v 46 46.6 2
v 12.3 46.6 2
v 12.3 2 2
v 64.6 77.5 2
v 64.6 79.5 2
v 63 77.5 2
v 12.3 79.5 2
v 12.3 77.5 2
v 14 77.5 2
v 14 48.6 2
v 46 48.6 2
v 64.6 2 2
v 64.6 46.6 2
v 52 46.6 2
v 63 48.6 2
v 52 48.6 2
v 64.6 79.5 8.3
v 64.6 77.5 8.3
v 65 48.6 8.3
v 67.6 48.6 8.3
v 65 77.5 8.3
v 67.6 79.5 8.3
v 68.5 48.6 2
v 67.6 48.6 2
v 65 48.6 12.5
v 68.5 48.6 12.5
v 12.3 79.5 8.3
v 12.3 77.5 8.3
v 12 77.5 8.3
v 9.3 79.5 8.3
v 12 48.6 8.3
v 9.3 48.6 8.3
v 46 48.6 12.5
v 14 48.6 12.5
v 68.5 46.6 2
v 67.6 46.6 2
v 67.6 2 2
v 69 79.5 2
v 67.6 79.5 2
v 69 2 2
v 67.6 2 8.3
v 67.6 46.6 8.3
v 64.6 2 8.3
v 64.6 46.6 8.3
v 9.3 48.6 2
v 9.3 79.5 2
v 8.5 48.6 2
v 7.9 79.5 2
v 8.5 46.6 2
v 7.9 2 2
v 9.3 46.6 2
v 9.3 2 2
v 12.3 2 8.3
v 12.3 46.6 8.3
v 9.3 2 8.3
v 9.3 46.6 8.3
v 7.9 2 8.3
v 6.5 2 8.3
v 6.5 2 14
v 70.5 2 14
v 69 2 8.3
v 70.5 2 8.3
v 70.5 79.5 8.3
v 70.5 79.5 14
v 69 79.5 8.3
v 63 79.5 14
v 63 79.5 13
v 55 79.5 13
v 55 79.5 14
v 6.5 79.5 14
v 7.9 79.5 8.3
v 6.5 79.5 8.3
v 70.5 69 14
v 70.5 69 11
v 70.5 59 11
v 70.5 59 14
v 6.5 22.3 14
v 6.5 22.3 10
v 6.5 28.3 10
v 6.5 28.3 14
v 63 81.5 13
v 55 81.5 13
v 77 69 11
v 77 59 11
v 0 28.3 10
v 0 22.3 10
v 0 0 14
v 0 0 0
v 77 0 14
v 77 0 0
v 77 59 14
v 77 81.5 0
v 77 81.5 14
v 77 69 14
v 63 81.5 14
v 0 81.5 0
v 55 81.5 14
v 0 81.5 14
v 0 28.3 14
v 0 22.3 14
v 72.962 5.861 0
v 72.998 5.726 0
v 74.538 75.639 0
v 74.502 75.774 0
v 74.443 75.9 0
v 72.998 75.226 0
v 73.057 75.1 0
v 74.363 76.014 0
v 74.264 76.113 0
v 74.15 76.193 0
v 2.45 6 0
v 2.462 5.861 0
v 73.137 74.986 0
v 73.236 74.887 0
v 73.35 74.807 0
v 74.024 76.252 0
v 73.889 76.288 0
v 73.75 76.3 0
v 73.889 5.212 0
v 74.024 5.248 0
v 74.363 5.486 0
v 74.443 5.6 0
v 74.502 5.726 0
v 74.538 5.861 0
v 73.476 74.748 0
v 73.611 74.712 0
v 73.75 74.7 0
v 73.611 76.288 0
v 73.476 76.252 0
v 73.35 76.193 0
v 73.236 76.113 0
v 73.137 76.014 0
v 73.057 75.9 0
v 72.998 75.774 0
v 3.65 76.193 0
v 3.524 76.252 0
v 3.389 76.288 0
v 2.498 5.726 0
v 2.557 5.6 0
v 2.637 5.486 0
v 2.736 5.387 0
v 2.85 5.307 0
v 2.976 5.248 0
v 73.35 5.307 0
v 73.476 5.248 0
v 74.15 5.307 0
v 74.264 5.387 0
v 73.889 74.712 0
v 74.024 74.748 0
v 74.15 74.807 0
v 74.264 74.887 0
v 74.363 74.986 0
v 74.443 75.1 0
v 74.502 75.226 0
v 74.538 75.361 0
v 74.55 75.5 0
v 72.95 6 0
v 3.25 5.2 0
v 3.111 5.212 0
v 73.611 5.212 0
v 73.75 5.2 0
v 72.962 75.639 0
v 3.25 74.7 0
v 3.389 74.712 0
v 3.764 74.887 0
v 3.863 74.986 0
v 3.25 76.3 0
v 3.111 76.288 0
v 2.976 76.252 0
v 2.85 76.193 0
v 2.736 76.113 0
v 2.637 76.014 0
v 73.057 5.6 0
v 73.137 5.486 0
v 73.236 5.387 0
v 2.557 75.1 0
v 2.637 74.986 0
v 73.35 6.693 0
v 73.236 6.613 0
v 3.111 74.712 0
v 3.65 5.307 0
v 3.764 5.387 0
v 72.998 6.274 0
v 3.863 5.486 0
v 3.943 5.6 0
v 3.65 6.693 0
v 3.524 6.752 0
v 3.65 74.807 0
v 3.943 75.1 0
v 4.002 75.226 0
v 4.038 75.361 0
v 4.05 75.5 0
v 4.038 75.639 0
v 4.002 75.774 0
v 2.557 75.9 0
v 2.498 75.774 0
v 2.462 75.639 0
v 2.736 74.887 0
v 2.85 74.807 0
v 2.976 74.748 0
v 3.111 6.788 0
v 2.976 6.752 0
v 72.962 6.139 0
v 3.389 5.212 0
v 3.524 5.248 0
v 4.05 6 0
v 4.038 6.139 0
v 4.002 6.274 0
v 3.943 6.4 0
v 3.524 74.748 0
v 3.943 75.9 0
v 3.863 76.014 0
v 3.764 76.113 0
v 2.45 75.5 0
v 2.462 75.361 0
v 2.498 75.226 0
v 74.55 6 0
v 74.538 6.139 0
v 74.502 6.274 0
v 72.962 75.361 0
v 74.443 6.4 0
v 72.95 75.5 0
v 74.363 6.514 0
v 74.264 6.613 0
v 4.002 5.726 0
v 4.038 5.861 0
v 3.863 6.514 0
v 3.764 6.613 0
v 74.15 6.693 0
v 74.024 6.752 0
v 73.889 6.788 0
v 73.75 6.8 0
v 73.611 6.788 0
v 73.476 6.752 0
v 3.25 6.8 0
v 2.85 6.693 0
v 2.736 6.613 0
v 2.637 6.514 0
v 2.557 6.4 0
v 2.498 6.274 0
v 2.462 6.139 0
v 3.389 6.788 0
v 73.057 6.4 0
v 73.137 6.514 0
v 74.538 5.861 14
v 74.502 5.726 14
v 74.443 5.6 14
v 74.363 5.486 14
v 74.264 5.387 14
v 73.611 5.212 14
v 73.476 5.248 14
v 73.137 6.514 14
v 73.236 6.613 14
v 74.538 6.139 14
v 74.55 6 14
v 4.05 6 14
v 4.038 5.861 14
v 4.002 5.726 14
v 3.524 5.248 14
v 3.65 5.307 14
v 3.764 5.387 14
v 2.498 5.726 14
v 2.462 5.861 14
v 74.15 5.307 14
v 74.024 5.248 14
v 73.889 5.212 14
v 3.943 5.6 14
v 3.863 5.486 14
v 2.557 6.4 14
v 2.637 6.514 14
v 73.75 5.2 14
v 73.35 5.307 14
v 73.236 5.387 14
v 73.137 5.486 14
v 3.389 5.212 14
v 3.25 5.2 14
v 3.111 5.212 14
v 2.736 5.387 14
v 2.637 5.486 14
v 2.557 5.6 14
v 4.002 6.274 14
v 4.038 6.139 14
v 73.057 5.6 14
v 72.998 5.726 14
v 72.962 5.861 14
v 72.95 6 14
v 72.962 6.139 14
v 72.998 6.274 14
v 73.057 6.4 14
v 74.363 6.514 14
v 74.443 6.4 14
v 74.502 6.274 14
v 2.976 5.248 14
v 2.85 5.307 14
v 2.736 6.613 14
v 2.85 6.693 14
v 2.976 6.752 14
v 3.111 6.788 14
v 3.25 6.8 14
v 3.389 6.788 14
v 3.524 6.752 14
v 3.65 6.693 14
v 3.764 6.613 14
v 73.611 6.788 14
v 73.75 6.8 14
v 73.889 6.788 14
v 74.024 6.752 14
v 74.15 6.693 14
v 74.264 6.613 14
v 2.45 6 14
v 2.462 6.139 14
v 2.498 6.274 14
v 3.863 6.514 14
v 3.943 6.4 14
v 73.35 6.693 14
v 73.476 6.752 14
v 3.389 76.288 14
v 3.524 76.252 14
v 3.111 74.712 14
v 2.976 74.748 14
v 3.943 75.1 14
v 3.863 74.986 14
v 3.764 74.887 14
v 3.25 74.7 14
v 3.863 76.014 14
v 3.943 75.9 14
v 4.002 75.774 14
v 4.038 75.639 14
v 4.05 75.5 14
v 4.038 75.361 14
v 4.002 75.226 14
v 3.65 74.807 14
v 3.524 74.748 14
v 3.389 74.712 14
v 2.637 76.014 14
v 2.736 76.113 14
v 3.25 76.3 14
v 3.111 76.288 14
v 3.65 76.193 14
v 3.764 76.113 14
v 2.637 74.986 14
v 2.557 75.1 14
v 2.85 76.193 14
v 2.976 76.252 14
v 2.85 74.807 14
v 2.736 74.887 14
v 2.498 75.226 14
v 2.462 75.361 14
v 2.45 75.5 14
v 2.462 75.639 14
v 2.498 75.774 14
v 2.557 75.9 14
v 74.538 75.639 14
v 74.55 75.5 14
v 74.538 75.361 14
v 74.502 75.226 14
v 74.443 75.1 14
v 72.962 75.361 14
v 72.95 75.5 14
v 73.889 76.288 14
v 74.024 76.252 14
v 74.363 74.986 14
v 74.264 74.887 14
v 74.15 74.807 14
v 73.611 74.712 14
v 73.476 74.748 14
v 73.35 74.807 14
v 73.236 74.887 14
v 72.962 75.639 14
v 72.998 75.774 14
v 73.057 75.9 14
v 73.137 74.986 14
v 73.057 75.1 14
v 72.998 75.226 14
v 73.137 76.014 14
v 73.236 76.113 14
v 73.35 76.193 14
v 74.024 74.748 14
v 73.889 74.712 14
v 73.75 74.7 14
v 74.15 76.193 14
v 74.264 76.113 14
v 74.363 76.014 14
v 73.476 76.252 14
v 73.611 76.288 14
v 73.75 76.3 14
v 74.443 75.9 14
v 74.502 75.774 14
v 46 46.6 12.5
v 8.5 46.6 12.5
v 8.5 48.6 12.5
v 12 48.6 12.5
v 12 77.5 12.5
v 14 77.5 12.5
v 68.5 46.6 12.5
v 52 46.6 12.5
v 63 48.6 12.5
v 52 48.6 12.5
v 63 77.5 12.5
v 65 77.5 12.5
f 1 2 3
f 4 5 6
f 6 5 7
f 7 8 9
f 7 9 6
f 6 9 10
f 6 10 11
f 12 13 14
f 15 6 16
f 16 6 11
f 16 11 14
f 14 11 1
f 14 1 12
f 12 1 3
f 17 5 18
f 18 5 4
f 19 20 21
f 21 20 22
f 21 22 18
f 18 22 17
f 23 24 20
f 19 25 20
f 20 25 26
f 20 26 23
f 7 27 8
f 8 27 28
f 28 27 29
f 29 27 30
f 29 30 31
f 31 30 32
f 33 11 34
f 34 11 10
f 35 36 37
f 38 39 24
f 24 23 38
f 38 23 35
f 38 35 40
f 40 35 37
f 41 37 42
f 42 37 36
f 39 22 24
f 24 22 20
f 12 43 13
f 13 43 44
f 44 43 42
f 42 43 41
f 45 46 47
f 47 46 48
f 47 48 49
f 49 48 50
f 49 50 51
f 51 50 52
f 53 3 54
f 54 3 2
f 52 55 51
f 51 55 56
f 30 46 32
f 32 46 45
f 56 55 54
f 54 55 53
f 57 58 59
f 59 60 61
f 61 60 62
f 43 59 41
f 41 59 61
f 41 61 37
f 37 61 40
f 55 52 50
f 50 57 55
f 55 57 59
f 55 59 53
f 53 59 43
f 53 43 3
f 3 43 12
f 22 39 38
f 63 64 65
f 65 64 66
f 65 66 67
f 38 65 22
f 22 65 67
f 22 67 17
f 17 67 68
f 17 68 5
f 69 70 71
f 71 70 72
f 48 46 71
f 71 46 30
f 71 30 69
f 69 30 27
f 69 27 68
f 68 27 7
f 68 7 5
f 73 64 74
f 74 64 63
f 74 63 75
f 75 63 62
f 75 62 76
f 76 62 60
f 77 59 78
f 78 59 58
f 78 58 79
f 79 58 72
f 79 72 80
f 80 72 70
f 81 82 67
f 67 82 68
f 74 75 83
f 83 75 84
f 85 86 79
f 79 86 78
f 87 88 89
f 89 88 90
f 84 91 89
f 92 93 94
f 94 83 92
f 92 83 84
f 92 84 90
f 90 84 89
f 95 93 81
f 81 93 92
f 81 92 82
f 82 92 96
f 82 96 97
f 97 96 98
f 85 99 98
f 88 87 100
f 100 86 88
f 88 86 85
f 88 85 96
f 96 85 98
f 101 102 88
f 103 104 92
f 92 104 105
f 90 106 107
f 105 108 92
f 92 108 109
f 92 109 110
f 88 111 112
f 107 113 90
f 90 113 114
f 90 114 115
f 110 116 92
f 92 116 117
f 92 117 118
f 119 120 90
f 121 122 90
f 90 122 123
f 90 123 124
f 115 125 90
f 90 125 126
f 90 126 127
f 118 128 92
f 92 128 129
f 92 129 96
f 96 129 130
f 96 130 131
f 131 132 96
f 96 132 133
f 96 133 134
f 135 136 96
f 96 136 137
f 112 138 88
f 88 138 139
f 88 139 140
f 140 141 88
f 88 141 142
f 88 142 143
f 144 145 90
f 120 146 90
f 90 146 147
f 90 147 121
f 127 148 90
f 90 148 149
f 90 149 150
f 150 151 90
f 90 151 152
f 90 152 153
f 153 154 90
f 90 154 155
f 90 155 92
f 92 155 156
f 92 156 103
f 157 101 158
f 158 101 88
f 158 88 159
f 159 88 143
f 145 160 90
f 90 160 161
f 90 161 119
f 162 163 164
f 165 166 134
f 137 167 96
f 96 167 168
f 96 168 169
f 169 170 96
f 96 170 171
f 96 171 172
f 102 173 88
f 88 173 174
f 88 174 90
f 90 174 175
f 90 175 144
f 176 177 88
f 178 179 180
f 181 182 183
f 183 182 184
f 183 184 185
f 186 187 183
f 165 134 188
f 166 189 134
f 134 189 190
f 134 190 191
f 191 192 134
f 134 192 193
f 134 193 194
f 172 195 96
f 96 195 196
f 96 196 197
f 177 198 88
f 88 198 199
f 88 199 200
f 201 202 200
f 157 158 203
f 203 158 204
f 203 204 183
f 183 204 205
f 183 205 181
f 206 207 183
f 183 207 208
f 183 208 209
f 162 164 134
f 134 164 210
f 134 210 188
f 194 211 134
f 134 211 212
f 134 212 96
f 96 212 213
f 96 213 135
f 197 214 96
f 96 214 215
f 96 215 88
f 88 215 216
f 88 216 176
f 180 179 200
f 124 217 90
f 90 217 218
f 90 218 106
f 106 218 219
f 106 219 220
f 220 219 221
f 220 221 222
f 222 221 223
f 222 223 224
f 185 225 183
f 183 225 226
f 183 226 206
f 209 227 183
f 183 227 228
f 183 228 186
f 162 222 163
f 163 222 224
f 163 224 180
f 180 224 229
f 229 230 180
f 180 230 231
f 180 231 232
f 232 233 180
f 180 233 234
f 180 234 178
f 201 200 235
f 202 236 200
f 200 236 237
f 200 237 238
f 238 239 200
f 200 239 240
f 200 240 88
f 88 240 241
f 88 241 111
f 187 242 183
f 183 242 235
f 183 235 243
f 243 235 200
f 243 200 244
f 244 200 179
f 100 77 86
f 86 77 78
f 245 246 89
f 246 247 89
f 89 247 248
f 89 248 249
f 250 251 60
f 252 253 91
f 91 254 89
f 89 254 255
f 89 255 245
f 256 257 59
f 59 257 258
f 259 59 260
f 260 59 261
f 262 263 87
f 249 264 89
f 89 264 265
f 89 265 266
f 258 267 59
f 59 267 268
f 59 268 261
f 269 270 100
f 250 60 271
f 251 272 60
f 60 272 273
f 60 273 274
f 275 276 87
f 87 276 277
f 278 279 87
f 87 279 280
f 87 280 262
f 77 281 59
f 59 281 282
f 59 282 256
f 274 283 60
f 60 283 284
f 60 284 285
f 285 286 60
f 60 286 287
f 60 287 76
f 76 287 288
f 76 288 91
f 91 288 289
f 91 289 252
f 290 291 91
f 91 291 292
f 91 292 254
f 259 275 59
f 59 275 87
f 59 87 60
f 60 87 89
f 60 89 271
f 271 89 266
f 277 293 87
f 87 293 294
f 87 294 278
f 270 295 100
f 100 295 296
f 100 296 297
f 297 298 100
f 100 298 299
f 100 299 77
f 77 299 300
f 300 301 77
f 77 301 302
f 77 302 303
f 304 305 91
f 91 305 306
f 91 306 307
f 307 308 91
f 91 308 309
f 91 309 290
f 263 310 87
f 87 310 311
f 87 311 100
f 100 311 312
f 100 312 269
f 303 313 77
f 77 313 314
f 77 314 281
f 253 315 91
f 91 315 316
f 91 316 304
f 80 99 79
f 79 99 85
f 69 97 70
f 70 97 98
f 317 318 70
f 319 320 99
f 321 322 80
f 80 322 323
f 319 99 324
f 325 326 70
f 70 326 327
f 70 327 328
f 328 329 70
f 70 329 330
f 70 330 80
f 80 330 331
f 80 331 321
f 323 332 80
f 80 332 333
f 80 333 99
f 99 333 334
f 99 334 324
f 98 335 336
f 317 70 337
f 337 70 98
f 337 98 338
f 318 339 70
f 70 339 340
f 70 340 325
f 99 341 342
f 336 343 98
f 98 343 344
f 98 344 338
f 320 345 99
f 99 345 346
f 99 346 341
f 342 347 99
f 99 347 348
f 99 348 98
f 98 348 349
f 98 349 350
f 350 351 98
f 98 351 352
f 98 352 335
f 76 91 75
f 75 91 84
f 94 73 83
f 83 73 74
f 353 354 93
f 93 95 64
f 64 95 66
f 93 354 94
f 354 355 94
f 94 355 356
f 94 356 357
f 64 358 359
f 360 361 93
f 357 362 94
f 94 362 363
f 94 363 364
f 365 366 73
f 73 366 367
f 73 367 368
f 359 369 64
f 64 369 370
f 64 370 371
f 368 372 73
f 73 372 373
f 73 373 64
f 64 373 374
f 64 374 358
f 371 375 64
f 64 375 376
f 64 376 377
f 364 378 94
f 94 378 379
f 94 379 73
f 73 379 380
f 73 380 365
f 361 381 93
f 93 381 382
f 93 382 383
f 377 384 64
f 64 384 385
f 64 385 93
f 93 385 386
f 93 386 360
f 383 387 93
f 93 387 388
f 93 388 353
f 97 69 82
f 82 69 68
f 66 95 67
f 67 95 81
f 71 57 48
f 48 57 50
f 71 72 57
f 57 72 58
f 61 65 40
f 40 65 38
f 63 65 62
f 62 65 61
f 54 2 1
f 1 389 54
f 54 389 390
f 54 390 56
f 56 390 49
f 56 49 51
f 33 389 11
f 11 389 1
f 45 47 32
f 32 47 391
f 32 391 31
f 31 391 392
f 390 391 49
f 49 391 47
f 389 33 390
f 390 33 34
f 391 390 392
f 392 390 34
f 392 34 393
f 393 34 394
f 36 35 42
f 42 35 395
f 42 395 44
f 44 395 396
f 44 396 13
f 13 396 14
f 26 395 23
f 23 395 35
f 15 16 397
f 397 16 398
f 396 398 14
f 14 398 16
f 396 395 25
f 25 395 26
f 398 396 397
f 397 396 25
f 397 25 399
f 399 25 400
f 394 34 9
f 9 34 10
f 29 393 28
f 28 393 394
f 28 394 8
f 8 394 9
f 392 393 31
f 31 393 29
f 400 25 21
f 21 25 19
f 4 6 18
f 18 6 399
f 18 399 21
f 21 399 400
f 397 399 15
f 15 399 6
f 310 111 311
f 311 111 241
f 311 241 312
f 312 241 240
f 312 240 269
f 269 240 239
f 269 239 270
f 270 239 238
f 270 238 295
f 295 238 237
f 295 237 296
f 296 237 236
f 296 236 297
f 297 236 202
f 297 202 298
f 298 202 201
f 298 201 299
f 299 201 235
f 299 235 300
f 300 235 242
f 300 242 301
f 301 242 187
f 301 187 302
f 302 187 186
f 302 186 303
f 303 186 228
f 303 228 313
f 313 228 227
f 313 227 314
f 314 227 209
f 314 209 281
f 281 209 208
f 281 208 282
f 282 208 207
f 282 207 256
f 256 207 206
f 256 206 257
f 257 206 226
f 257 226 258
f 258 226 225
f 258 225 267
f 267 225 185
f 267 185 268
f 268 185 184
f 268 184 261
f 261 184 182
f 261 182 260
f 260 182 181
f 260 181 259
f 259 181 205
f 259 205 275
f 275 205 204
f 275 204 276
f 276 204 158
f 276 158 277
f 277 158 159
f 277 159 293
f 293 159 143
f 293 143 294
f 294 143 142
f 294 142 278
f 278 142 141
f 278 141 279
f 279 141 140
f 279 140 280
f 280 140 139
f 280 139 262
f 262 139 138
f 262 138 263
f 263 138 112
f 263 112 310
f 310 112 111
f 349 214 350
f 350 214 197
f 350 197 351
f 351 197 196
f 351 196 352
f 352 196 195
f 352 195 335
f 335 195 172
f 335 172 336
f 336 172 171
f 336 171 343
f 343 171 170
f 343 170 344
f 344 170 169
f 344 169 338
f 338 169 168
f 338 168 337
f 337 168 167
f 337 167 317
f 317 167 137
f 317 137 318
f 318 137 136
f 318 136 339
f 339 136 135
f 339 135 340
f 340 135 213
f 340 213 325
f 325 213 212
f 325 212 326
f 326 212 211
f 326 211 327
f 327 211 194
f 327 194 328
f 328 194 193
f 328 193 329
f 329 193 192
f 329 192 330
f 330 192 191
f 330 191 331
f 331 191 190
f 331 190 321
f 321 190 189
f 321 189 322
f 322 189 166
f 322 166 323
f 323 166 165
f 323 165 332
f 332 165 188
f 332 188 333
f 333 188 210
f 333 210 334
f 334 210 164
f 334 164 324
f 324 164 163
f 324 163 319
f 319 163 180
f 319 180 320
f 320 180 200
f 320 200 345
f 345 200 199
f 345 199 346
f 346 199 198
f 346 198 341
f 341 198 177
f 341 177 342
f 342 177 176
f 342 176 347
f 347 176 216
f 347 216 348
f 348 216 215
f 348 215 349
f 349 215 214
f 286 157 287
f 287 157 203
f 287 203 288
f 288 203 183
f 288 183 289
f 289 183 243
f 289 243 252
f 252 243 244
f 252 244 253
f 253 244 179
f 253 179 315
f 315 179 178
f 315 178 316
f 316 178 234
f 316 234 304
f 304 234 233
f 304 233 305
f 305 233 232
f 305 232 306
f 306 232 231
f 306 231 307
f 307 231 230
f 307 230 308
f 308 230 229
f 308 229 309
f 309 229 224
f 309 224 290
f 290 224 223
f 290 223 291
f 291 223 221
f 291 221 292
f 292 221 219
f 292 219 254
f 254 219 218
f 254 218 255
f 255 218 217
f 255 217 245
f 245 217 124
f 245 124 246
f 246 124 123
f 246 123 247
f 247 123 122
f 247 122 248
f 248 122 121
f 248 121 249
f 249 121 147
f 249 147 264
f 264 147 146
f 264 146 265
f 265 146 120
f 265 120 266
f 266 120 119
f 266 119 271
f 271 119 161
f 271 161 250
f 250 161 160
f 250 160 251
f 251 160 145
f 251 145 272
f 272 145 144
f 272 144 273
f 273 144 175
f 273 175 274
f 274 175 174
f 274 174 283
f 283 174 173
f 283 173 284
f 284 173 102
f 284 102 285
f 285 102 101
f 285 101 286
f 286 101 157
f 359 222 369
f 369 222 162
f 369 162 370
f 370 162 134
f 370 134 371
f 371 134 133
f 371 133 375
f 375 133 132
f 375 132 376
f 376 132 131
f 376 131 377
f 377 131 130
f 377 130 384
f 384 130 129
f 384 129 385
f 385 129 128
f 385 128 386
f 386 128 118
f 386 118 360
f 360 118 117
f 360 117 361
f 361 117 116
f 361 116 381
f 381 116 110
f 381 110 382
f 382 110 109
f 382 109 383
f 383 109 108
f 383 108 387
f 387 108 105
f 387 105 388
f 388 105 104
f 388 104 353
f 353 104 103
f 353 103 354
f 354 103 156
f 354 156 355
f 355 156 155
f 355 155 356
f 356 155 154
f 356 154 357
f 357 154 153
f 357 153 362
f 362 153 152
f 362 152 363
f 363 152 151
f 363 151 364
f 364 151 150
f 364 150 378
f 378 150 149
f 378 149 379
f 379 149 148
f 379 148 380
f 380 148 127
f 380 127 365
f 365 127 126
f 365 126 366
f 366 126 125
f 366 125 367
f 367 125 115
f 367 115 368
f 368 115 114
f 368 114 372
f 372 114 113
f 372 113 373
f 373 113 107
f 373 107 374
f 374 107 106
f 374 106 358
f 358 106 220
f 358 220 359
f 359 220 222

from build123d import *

# Parameters (mm, degrees)
SKETCH1_W            = 81.5
SKETCH1_H            = 77
BOSS_EXTRUDE1_DEPTH  = 2
SKETCH2_W            = 81.5
SKETCH2_H            = 6.5
BOSS_EXTRUDE2_DEPTH  = 10
SKETCH3_W            = 22.3
SKETCH3_H            = 6.5
BOSS_EXTRUDE3_DEPTH  = 14
SKETCH4_W            = 53.2
SKETCH4_H            = 6.5
BOSS_EXTRUDE4_DEPTH  = 14
SKETCH5_W            = 81.5
SKETCH5_H            = 6.5
BOSS_EXTRUDE5_DEPTH  = 11
SKETCH6_W            = 59
SKETCH6_H            = 6.5
BOSS_EXTRUDE6_DEPTH  = 14
SKETCH7_W            = 12.5
SKETCH7_H            = 6.5
BOSS_EXTRUDE7_DEPTH  = 14
SKETCH8_W            = 2
SKETCH8_H            = 64
BOSS_EXTRUDE8_DEPTH  = 14
SKETCH9_W            = 2
SKETCH9_H            = 64
BOSS_EXTRUDE9_DEPTH  = 13
SKETCH10_W           = 2
SKETCH10_H           = 48.5
BOSS_EXTRUDE10_DEPTH = 14
SKETCH11_W           = 2
SKETCH11_H           = 7.5
BOSS_EXTRUDE11_DEPTH = 14
SKETCH12_W           = 77.5
SKETCH12_H           = 1.4
BOSS_EXTRUDE12_DEPTH = 8.3
SKETCH13_W           = 77.5
SKETCH13_H           = 3
BOSS_EXTRUDE13_DEPTH = 8.3
SKETCH14_W           = 77.5
SKETCH14_H           = 3
BOSS_EXTRUDE14_DEPTH = 8.3
SKETCH15_W           = 77.5
SKETCH15_H           = 1.5
BOSS_EXTRUDE15_DEPTH = 8.3
SKETCH16_W           = 2
SKETCH16_H           = 37.5
BOSS_EXTRUDE16_DEPTH = 12.5
SKETCH17_W           = 2
SKETCH17_H           = 16.5
BOSS_EXTRUDE17_DEPTH = 12.5
SKETCH18_W           = 28.9
SKETCH18_H           = 2
BOSS_EXTRUDE18_DEPTH = 12.5
SKETCH19_W           = 28.9
SKETCH19_H           = 2
BOSS_EXTRUDE19_DEPTH = 12.5
SKETCH20_R           = 0.8
CUT_EXTRUDE1_DEPTH   = 20
SKETCH21_R           = 0.8
CUT_EXTRUDE2_DEPTH   = 20
SKETCH22_R           = 0.8
CUT_EXTRUDE3_DEPTH   = 20
SKETCH23_R           = 0.8
CUT_EXTRUDE4_DEPTH   = 20


with BuildPart() as part:
    # Sketch1 → Boss-Extrude1 (new body)
    with BuildSketch(Plane(origin=(0, 0, 0), x_dir=(0, 1, 0), z_dir=(0, 0, 1))):
        with Locations((40.75, -38.5)):
            Rectangle(SKETCH1_W, SKETCH1_H)
    extrude(amount=BOSS_EXTRUDE1_DEPTH)

    # Sketch2 → Boss-Extrude2 (add)
    with BuildSketch(Plane(origin=(0, 0, 0), x_dir=(0, 1, 0), z_dir=(0, 0, 1))):
        with Locations((40.75, -3.25)):
            Rectangle(SKETCH2_W, SKETCH2_H)
    extrude(amount=BOSS_EXTRUDE2_DEPTH)

    # Sketch3 → Boss-Extrude3 (add)
    with BuildSketch(Plane(origin=(0, 0, 0), x_dir=(0, 1, 0), z_dir=(0, 0, 1))):
        with Locations((11.15, -3.25)):
            Rectangle(SKETCH3_W, SKETCH3_H)
    extrude(amount=BOSS_EXTRUDE3_DEPTH)

    # Sketch4 → Boss-Extrude4 (add)
    with BuildSketch(Plane(origin=(0, 0, 0), x_dir=(0, 1, 0), z_dir=(0, 0, 1))):
        with Locations((54.9, -3.25)):
            Rectangle(SKETCH4_W, SKETCH4_H)
    extrude(amount=BOSS_EXTRUDE4_DEPTH)

    # Sketch5 → Boss-Extrude5 (add)
    with BuildSketch(Plane(origin=(0, 0, 0), x_dir=(0, 1, 0), z_dir=(0, 0, 1))):
        with Locations((40.75, -73.75)):
            Rectangle(SKETCH5_W, SKETCH5_H)
    extrude(amount=BOSS_EXTRUDE5_DEPTH)

    # Sketch6 → Boss-Extrude6 (add)
    with BuildSketch(Plane(origin=(0, 0, 0), x_dir=(0, 1, 0), z_dir=(0, 0, 1))):
        with Locations((29.5, -73.75)):
            Rectangle(SKETCH6_W, SKETCH6_H)
    extrude(amount=BOSS_EXTRUDE6_DEPTH)

    # Sketch7 → Boss-Extrude7 (add)
    with BuildSketch(Plane(origin=(0, 0, 0), x_dir=(0, 1, 0), z_dir=(0, 0, 1))):
        with Locations((75.25, -73.75)):
            Rectangle(SKETCH7_W, SKETCH7_H)
    extrude(amount=BOSS_EXTRUDE7_DEPTH)

    # Sketch8 → Boss-Extrude8 (add)
    with BuildSketch(Plane(origin=(0, 0, 0), x_dir=(0, 1, 0), z_dir=(0, 0, 1))):
        with Locations((1, -38.5)):
            Rectangle(SKETCH8_W, SKETCH8_H)
    extrude(amount=BOSS_EXTRUDE8_DEPTH)

    # Sketch9 → Boss-Extrude9 (add)
    with BuildSketch(Plane(origin=(0, 0, 0), x_dir=(0, 1, 0), z_dir=(0, 0, 1))):
        with Locations((80.5, -38.5)):
            Rectangle(SKETCH9_W, SKETCH9_H)
    extrude(amount=BOSS_EXTRUDE9_DEPTH)

    # Sketch10 → Boss-Extrude10 (add)
    with BuildSketch(Plane(origin=(0, 0, 0), x_dir=(0, 1, 0), z_dir=(0, 0, 1))):
        with Locations((80.5, -30.75)):
            Rectangle(SKETCH10_W, SKETCH10_H)
    extrude(amount=BOSS_EXTRUDE10_DEPTH)

    # Sketch11 → Boss-Extrude11 (add)
    with BuildSketch(Plane(origin=(0, 0, 0), x_dir=(0, 1, 0), z_dir=(0, 0, 1))):
        with Locations((80.5, -66.75)):
            Rectangle(SKETCH11_W, SKETCH11_H)
    extrude(amount=BOSS_EXTRUDE11_DEPTH)

    # Sketch12 → Boss-Extrude12 (add)
    with BuildSketch(Plane(origin=(0, 0, 0), x_dir=(0, 1, 0), z_dir=(0, 0, 1))):
        with Locations((40.75, -7.2)):
            Rectangle(SKETCH12_W, SKETCH12_H)
    extrude(amount=BOSS_EXTRUDE12_DEPTH)

    # Sketch13 → Boss-Extrude13 (add)
    with BuildSketch(Plane(origin=(0, 0, 0), x_dir=(0, 1, 0), z_dir=(0, 0, 1))):
        with Locations((40.75, -10.8)):
            Rectangle(SKETCH13_W, SKETCH13_H)
    extrude(amount=BOSS_EXTRUDE13_DEPTH)

    # Sketch14 → Boss-Extrude14 (add)
    with BuildSketch(Plane(origin=(0, 0, 0), x_dir=(0, 1, 0), z_dir=(0, 0, 1))):
        with Locations((40.75, -66.1)):
            Rectangle(SKETCH14_W, SKETCH14_H)
    extrude(amount=BOSS_EXTRUDE14_DEPTH)

    # Sketch15 → Boss-Extrude15 (add)
    with BuildSketch(Plane(origin=(0, 0, 0), x_dir=(0, 1, 0), z_dir=(0, 0, 1))):
        with Locations((40.75, -69.75)):
            Rectangle(SKETCH15_W, SKETCH15_H)
    extrude(amount=BOSS_EXTRUDE15_DEPTH)

    # Sketch16 → Boss-Extrude16 (add)
    with BuildSketch(Plane(origin=(0, 0, 0), x_dir=(0, 1, 0), z_dir=(0, 0, 1))):
        with Locations((47.6, -27.25)):
            Rectangle(SKETCH16_W, SKETCH16_H)
    extrude(amount=BOSS_EXTRUDE16_DEPTH)

    # Sketch17 → Boss-Extrude17 (add)
    with BuildSketch(Plane(origin=(0, 0, 0), x_dir=(0, 1, 0), z_dir=(0, 0, 1))):
        with Locations((47.6, -60.25)):
            Rectangle(SKETCH17_W, SKETCH17_H)
    extrude(amount=BOSS_EXTRUDE17_DEPTH)

    # Sketch18 → Boss-Extrude18 (add)
    with BuildSketch(Plane(origin=(0, 0, 0), x_dir=(0, 1, 0), z_dir=(0, 0, 1))):
        with Locations((63.05, -13)):
            Rectangle(SKETCH18_W, SKETCH18_H)
    extrude(amount=BOSS_EXTRUDE18_DEPTH)

    # Sketch19 → Boss-Extrude19 (add)
    with BuildSketch(Plane(origin=(0, 0, 0), x_dir=(0, 1, 0), z_dir=(0, 0, 1))):
        with Locations((63.05, -64)):
            Rectangle(SKETCH19_W, SKETCH19_H)
    extrude(amount=BOSS_EXTRUDE19_DEPTH)

    # Sketch20 → Cut-Extrude1 (cut)
    with BuildSketch(Plane(origin=(0, 0, 0), x_dir=(0, 1, 0), z_dir=(0, 0, 1))):
        with Locations(Location((6, -3.25, 0), (0, 0, 270))):
            Circle(SKETCH20_R)
    extrude(amount=CUT_EXTRUDE1_DEPTH, mode=Mode.SUBTRACT)

    # Sketch21 → Cut-Extrude2 (cut)
    with BuildSketch(Plane(origin=(0, 0, 0), x_dir=(0, 1, 0), z_dir=(0, 0, 1))):
        with Locations(Location((75.5, -3.25, 0), (0, 0, 270))):
            Circle(SKETCH21_R)
    extrude(amount=CUT_EXTRUDE2_DEPTH, mode=Mode.SUBTRACT)

    # Sketch22 → Cut-Extrude3 (cut)
    with BuildSketch(Plane(origin=(0, 0, 0), x_dir=(0, 1, 0), z_dir=(0, 0, 1))):
        with Locations(Location((6, -73.75, 0), (0, 0, 270))):
            Circle(SKETCH22_R)
    extrude(amount=CUT_EXTRUDE3_DEPTH, mode=Mode.SUBTRACT)

    # Sketch23 → Cut-Extrude4 (cut)
    with BuildSketch(Plane(origin=(0, 0, 0), x_dir=(0, 1, 0), z_dir=(0, 0, 1))):
        with Locations(Location((75.5, -73.75, 0), (0, 0, 270))):
            Circle(SKETCH23_R)
    extrude(amount=CUT_EXTRUDE4_DEPTH, mode=Mode.SUBTRACT)


solid = part.part
